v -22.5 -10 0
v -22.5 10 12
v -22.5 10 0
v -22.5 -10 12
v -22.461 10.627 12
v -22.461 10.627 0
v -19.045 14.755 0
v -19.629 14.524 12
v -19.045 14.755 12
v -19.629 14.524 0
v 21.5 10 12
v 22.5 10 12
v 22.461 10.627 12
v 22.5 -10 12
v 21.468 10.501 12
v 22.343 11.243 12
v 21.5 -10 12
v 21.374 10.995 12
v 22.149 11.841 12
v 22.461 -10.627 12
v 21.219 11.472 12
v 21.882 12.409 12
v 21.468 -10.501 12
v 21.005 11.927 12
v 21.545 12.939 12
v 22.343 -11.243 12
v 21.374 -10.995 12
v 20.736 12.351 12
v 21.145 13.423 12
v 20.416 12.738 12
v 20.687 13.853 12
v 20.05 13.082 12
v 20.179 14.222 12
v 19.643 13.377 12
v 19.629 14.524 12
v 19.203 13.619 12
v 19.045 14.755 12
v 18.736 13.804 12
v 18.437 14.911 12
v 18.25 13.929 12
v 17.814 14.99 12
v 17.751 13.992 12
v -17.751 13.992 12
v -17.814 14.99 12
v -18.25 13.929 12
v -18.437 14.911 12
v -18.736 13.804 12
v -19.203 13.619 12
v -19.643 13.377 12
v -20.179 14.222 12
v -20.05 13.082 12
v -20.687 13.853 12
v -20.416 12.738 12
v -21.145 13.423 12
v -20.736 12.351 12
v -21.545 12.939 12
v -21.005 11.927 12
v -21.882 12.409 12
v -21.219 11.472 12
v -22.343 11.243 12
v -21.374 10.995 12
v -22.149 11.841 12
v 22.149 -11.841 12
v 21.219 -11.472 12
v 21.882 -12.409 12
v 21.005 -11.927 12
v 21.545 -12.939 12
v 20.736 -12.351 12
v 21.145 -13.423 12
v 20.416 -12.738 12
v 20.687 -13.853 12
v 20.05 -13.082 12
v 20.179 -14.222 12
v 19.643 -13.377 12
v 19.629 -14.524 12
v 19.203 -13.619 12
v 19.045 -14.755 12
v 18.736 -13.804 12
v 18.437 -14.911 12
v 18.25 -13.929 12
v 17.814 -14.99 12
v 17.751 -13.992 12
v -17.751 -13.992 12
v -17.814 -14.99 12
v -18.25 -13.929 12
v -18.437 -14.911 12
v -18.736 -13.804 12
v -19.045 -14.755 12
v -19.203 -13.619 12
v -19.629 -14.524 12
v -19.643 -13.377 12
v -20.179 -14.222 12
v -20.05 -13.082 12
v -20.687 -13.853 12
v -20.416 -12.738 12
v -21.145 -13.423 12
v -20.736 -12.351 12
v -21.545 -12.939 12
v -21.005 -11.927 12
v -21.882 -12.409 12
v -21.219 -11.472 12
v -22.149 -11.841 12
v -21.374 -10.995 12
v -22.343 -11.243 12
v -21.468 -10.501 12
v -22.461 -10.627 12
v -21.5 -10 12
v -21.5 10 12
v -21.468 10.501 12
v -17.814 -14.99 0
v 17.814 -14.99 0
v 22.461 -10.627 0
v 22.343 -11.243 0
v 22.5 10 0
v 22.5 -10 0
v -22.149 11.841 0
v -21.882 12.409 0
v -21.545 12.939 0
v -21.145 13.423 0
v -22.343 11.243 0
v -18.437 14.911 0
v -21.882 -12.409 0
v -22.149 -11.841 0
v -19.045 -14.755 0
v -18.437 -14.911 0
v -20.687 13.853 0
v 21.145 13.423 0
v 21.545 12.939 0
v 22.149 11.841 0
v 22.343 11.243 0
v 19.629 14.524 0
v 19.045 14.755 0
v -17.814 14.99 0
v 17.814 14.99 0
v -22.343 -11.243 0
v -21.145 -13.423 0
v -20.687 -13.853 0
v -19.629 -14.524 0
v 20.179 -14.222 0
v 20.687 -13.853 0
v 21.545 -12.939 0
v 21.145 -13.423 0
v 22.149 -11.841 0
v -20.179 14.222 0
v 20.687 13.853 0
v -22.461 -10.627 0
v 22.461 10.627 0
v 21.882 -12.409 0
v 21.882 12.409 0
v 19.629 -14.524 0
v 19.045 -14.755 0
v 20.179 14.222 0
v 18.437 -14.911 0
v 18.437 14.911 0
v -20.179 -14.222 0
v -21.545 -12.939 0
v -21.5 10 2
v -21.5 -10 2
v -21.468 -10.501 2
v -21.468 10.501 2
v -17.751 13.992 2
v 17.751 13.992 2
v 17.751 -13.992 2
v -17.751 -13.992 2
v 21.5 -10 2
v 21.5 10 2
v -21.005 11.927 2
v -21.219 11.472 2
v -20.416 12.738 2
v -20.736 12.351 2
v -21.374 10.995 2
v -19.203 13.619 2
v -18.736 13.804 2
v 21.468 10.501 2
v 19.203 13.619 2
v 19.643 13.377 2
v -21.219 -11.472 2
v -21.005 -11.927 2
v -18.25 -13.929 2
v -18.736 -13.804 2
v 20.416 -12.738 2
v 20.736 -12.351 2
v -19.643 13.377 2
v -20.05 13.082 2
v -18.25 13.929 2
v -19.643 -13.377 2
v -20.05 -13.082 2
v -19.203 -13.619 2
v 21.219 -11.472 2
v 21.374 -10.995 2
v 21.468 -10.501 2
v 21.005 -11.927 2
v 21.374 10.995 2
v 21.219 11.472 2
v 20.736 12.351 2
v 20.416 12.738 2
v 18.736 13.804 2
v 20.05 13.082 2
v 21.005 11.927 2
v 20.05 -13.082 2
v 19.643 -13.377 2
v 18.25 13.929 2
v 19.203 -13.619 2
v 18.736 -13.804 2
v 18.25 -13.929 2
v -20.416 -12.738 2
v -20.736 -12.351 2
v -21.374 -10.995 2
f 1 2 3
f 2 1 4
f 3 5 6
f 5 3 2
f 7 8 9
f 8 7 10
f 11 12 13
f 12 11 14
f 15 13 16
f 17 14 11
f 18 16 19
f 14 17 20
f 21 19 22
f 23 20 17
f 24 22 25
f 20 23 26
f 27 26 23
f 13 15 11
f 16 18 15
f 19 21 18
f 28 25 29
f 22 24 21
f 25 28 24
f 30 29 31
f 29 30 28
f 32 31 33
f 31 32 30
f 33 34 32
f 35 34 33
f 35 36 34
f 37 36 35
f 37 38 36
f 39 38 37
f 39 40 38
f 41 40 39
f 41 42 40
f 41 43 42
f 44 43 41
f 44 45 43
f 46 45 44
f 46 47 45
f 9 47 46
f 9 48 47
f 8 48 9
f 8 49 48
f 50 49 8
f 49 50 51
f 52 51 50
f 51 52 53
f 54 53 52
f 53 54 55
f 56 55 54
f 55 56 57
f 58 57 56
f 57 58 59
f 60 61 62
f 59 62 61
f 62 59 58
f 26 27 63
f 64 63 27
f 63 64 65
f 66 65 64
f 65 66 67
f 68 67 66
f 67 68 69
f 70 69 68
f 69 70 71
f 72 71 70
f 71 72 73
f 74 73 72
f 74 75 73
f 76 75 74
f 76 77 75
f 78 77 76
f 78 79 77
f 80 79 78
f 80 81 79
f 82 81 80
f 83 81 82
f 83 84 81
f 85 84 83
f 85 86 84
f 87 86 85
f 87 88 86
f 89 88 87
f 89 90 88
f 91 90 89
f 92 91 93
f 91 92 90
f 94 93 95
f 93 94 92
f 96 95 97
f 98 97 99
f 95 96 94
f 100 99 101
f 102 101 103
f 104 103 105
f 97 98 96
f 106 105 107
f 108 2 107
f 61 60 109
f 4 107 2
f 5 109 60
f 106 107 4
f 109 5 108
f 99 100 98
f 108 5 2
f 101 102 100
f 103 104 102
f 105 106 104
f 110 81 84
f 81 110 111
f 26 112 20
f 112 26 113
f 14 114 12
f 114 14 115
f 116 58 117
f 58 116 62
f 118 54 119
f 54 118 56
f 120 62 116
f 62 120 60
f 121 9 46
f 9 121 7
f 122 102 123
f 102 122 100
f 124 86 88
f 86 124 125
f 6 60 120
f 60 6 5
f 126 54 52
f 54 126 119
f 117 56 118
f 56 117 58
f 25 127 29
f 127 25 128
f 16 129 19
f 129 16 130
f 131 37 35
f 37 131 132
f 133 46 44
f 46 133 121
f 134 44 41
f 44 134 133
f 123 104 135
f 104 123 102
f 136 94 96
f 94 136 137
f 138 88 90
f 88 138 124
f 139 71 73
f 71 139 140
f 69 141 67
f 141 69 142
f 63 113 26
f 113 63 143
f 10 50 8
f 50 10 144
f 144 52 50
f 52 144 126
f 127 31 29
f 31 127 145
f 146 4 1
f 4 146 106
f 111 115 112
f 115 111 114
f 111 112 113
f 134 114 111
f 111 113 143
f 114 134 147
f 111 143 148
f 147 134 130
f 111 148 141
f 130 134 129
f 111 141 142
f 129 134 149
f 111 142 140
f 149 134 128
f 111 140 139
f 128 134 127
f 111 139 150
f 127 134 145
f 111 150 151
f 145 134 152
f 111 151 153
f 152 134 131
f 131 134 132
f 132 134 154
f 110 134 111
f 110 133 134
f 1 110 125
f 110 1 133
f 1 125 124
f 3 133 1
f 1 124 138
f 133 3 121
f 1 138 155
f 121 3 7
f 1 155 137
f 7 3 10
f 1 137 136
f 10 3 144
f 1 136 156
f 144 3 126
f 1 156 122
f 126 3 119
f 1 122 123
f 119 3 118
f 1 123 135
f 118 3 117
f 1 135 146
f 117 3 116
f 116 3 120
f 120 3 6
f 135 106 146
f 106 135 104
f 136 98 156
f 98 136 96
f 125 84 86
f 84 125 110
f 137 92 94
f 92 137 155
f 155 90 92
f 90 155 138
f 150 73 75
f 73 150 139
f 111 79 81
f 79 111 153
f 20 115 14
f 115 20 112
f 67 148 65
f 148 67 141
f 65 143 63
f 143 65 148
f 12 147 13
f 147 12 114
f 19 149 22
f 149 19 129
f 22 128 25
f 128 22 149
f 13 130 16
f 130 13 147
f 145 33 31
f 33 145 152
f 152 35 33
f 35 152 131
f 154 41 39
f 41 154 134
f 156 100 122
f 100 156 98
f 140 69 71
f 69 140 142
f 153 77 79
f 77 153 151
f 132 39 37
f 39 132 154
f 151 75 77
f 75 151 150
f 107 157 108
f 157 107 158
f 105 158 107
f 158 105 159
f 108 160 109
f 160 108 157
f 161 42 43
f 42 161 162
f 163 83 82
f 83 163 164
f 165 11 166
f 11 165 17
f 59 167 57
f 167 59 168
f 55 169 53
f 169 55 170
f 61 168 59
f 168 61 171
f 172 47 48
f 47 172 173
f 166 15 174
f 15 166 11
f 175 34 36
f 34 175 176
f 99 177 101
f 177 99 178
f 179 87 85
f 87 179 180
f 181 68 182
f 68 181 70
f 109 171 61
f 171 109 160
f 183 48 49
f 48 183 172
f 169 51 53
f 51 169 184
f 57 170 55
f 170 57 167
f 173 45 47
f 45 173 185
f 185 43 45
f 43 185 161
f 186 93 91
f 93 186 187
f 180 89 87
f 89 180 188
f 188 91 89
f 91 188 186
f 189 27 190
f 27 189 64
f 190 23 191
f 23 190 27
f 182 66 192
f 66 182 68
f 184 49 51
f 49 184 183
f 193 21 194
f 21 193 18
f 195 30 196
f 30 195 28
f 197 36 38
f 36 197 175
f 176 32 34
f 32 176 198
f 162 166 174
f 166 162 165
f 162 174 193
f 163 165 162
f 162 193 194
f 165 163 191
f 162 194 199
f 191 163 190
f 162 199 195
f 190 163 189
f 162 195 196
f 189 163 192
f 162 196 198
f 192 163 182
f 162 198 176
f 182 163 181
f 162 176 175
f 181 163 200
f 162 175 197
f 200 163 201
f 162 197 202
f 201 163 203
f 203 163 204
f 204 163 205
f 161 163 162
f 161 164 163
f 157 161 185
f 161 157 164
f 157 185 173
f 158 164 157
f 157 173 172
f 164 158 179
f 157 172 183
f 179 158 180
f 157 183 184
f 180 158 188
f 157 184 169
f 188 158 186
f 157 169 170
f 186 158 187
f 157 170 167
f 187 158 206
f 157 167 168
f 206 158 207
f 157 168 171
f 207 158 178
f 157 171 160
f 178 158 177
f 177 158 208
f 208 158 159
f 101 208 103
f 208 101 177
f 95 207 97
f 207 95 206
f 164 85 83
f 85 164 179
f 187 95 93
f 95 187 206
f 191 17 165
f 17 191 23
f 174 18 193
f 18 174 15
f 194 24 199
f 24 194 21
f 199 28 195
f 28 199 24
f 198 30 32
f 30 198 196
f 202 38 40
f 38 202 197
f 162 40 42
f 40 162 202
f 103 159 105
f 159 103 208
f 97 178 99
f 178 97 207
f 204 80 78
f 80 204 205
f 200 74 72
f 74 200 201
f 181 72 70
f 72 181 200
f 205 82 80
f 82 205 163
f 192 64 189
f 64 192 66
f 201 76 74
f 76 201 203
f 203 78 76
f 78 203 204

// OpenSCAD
$fn = 50;


difference() {
	union() {
		hull() {
			translate(v = [-17.5000000000, 10.0000000000, 0]) {
				cylinder(h = 12, r = 5);
			}
			translate(v = [17.5000000000, 10.0000000000, 0]) {
				cylinder(h = 12, r = 5);
			}
			translate(v = [-17.5000000000, -10.0000000000, 0]) {
				cylinder(h = 12, r = 5);
			}
			translate(v = [17.5000000000, -10.0000000000, 0]) {
				cylinder(h = 12, r = 5);
			}
		}
	}
	union() {
		translate(v = [0, 0, 2]) {
			hull() {
				translate(v = [-17.5000000000, 10.0000000000, 0]) {
					cylinder(h = 10, r = 4);
				}
				translate(v = [17.5000000000, 10.0000000000, 0]) {
					cylinder(h = 10, r = 4);
				}
				translate(v = [-17.5000000000, -10.0000000000, 0]) {
					cylinder(h = 10, r = 4);
				}
				translate(v = [17.5000000000, -10.0000000000, 0]) {
					cylinder(h = 10, r = 4);
				}
			}
		}
	}
}
